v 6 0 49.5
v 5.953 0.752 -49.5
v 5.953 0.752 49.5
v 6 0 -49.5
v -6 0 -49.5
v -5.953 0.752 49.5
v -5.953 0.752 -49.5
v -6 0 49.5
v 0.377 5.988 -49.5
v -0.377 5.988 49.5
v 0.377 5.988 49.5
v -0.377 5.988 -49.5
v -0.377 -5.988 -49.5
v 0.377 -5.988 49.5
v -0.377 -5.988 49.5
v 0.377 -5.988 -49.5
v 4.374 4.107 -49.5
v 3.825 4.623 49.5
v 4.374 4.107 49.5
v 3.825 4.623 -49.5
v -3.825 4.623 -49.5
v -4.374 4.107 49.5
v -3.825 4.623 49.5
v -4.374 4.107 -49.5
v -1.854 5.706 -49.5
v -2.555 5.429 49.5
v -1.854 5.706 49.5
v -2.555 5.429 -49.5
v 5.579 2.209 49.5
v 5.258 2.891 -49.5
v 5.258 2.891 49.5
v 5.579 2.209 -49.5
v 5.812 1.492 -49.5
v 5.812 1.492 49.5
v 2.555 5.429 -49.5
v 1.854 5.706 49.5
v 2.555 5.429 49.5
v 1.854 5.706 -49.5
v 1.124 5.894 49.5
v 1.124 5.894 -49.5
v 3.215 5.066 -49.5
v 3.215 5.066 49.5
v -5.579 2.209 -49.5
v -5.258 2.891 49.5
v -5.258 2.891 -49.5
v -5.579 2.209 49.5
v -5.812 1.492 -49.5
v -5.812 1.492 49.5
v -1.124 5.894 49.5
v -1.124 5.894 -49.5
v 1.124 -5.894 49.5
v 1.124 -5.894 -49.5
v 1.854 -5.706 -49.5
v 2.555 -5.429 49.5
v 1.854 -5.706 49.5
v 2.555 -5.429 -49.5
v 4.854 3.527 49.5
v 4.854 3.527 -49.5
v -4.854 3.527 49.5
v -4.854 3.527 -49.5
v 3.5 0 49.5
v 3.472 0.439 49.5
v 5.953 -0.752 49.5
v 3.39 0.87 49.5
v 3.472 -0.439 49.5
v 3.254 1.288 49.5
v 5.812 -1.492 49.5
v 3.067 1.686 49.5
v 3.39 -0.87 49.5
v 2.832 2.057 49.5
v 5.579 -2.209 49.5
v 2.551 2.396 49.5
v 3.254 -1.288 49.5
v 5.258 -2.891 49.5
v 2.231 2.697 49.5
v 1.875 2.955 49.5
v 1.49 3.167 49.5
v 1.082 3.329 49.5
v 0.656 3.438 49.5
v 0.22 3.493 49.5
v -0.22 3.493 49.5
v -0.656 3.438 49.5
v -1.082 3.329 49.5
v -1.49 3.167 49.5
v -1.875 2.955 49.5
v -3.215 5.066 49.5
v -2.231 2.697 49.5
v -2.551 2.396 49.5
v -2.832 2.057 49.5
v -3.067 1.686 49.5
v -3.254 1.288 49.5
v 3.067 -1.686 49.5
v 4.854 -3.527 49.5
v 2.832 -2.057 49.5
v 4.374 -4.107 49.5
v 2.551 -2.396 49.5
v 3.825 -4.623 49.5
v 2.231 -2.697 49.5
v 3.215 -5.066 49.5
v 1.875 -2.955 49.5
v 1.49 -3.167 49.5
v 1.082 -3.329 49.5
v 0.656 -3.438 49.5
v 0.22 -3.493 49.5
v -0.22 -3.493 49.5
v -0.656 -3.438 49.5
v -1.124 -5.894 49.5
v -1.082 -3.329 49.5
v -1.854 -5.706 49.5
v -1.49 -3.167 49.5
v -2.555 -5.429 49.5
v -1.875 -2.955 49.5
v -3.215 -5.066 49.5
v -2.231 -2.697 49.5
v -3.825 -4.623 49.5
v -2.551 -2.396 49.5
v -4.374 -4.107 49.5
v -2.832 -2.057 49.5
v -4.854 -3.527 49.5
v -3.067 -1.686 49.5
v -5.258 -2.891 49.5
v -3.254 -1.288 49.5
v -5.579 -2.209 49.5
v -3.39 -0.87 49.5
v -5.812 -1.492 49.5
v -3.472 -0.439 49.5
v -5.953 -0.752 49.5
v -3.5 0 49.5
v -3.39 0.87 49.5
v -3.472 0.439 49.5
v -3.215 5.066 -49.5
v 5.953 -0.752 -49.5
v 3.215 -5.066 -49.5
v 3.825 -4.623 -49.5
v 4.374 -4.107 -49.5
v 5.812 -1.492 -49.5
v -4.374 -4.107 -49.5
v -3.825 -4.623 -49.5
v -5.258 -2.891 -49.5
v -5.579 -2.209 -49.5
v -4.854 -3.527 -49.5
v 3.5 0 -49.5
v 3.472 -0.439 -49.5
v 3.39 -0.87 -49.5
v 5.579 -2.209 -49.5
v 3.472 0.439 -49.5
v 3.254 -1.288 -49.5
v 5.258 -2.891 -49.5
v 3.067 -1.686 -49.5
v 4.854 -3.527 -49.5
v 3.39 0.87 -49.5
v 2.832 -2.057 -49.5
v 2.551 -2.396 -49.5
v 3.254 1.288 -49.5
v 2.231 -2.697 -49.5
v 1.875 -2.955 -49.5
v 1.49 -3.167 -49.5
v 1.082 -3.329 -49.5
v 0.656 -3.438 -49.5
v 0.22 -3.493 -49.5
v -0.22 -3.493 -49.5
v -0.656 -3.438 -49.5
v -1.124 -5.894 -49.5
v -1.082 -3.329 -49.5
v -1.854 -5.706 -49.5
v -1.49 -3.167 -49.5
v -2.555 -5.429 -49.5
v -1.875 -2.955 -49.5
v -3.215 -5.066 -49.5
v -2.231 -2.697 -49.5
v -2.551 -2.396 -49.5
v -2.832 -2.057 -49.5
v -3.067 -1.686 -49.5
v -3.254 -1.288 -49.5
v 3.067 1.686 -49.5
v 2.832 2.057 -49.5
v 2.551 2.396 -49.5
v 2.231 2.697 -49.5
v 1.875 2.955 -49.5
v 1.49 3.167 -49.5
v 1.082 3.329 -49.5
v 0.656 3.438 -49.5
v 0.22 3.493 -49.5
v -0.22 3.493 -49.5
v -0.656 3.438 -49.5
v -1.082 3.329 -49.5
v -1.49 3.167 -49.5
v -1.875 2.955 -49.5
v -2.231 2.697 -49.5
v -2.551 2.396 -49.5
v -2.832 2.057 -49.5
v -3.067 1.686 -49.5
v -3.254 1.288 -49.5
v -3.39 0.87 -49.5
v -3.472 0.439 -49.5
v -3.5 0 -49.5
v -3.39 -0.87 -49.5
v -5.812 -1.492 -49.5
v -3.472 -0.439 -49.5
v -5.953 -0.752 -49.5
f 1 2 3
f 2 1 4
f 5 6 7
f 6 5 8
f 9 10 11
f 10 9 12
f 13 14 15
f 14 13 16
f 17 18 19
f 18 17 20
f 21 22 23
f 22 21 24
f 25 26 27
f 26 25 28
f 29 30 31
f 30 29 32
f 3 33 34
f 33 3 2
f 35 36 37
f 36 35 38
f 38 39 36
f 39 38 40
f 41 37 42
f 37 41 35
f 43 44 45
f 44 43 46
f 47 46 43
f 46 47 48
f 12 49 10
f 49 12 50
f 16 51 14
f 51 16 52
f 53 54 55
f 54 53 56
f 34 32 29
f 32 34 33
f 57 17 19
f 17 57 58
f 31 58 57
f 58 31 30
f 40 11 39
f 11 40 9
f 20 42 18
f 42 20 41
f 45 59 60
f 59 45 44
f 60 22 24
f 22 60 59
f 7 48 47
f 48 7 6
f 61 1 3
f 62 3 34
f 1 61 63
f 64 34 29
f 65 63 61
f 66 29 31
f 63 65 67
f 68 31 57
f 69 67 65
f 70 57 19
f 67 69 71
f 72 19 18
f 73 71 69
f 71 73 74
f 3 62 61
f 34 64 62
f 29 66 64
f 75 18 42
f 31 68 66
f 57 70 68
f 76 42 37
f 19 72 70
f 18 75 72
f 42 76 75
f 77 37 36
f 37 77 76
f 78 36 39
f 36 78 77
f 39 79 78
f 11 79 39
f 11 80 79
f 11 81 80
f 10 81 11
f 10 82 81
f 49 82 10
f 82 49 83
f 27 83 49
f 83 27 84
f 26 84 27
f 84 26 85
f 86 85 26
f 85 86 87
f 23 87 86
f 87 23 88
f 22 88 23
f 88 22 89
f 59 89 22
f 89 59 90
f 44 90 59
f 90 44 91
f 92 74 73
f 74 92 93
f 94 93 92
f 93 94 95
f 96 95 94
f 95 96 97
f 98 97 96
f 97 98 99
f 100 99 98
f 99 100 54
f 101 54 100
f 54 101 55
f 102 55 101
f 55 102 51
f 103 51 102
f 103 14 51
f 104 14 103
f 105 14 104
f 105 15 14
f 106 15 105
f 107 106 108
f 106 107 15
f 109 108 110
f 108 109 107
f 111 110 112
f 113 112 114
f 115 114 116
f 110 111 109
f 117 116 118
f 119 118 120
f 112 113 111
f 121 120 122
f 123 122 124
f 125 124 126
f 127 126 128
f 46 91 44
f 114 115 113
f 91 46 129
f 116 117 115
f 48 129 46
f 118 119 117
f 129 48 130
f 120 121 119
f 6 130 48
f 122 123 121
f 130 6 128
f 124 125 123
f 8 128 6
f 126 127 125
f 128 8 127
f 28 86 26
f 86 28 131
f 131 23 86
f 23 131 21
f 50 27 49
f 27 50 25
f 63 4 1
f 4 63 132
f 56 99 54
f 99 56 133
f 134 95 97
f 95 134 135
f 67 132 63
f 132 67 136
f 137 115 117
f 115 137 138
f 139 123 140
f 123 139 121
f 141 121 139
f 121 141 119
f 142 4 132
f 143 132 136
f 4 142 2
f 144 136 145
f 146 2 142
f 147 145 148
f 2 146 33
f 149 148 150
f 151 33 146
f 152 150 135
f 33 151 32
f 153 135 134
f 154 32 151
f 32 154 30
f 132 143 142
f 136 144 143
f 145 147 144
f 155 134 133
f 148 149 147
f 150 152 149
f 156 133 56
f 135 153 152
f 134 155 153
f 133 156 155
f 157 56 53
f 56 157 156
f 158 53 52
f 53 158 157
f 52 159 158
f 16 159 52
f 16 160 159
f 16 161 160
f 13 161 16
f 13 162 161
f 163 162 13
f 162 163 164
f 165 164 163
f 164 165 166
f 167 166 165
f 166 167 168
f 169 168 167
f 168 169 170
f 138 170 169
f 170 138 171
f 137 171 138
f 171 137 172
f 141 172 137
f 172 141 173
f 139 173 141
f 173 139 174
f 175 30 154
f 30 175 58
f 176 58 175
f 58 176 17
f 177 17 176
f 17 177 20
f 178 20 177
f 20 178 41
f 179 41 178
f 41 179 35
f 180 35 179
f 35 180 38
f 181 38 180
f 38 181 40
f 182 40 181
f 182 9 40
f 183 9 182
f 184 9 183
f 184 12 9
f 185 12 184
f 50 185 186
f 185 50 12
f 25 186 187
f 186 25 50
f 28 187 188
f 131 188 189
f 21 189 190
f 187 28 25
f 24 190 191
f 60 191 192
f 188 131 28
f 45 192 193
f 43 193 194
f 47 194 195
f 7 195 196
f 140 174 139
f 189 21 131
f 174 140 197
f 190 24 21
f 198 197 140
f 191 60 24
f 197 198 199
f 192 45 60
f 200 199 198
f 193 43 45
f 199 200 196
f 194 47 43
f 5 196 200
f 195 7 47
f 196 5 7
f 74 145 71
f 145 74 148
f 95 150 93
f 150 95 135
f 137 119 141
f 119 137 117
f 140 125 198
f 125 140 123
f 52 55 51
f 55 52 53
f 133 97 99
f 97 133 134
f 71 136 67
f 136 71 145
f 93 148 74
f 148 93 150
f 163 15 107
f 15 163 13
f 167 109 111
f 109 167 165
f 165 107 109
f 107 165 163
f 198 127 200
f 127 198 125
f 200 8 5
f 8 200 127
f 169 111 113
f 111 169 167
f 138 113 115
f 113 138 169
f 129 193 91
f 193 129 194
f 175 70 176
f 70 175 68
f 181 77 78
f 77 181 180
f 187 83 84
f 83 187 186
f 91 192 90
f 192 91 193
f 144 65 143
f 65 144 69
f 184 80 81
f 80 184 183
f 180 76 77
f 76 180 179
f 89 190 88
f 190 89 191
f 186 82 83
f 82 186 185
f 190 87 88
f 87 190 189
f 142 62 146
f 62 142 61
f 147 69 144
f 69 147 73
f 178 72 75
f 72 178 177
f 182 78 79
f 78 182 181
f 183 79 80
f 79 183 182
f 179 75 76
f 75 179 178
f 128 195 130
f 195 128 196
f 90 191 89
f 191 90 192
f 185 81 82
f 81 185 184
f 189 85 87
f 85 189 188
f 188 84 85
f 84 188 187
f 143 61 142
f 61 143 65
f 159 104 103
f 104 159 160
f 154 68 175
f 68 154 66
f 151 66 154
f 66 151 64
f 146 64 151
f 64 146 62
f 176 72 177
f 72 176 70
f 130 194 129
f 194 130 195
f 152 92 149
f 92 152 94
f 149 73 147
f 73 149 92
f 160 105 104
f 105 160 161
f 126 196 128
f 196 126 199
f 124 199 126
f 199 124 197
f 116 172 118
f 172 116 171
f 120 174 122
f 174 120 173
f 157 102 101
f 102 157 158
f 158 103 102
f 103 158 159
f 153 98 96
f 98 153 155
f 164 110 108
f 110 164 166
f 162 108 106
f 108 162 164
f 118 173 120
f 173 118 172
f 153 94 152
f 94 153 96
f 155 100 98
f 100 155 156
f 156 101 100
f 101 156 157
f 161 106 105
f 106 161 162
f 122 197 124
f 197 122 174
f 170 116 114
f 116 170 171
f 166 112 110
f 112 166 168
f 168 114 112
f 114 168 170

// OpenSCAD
$fn = 50;


difference() {
	union() {
		translate(v = [0, 0, -49.5000000000]) {
			cylinder(h = 99, r = 6.0000000000);
		}
	}
	union() {
		translate(v = [0, 0, -100.0000000000]) {
			cylinder(h = 200, r = 3.5000000000);
		}
	}
}
